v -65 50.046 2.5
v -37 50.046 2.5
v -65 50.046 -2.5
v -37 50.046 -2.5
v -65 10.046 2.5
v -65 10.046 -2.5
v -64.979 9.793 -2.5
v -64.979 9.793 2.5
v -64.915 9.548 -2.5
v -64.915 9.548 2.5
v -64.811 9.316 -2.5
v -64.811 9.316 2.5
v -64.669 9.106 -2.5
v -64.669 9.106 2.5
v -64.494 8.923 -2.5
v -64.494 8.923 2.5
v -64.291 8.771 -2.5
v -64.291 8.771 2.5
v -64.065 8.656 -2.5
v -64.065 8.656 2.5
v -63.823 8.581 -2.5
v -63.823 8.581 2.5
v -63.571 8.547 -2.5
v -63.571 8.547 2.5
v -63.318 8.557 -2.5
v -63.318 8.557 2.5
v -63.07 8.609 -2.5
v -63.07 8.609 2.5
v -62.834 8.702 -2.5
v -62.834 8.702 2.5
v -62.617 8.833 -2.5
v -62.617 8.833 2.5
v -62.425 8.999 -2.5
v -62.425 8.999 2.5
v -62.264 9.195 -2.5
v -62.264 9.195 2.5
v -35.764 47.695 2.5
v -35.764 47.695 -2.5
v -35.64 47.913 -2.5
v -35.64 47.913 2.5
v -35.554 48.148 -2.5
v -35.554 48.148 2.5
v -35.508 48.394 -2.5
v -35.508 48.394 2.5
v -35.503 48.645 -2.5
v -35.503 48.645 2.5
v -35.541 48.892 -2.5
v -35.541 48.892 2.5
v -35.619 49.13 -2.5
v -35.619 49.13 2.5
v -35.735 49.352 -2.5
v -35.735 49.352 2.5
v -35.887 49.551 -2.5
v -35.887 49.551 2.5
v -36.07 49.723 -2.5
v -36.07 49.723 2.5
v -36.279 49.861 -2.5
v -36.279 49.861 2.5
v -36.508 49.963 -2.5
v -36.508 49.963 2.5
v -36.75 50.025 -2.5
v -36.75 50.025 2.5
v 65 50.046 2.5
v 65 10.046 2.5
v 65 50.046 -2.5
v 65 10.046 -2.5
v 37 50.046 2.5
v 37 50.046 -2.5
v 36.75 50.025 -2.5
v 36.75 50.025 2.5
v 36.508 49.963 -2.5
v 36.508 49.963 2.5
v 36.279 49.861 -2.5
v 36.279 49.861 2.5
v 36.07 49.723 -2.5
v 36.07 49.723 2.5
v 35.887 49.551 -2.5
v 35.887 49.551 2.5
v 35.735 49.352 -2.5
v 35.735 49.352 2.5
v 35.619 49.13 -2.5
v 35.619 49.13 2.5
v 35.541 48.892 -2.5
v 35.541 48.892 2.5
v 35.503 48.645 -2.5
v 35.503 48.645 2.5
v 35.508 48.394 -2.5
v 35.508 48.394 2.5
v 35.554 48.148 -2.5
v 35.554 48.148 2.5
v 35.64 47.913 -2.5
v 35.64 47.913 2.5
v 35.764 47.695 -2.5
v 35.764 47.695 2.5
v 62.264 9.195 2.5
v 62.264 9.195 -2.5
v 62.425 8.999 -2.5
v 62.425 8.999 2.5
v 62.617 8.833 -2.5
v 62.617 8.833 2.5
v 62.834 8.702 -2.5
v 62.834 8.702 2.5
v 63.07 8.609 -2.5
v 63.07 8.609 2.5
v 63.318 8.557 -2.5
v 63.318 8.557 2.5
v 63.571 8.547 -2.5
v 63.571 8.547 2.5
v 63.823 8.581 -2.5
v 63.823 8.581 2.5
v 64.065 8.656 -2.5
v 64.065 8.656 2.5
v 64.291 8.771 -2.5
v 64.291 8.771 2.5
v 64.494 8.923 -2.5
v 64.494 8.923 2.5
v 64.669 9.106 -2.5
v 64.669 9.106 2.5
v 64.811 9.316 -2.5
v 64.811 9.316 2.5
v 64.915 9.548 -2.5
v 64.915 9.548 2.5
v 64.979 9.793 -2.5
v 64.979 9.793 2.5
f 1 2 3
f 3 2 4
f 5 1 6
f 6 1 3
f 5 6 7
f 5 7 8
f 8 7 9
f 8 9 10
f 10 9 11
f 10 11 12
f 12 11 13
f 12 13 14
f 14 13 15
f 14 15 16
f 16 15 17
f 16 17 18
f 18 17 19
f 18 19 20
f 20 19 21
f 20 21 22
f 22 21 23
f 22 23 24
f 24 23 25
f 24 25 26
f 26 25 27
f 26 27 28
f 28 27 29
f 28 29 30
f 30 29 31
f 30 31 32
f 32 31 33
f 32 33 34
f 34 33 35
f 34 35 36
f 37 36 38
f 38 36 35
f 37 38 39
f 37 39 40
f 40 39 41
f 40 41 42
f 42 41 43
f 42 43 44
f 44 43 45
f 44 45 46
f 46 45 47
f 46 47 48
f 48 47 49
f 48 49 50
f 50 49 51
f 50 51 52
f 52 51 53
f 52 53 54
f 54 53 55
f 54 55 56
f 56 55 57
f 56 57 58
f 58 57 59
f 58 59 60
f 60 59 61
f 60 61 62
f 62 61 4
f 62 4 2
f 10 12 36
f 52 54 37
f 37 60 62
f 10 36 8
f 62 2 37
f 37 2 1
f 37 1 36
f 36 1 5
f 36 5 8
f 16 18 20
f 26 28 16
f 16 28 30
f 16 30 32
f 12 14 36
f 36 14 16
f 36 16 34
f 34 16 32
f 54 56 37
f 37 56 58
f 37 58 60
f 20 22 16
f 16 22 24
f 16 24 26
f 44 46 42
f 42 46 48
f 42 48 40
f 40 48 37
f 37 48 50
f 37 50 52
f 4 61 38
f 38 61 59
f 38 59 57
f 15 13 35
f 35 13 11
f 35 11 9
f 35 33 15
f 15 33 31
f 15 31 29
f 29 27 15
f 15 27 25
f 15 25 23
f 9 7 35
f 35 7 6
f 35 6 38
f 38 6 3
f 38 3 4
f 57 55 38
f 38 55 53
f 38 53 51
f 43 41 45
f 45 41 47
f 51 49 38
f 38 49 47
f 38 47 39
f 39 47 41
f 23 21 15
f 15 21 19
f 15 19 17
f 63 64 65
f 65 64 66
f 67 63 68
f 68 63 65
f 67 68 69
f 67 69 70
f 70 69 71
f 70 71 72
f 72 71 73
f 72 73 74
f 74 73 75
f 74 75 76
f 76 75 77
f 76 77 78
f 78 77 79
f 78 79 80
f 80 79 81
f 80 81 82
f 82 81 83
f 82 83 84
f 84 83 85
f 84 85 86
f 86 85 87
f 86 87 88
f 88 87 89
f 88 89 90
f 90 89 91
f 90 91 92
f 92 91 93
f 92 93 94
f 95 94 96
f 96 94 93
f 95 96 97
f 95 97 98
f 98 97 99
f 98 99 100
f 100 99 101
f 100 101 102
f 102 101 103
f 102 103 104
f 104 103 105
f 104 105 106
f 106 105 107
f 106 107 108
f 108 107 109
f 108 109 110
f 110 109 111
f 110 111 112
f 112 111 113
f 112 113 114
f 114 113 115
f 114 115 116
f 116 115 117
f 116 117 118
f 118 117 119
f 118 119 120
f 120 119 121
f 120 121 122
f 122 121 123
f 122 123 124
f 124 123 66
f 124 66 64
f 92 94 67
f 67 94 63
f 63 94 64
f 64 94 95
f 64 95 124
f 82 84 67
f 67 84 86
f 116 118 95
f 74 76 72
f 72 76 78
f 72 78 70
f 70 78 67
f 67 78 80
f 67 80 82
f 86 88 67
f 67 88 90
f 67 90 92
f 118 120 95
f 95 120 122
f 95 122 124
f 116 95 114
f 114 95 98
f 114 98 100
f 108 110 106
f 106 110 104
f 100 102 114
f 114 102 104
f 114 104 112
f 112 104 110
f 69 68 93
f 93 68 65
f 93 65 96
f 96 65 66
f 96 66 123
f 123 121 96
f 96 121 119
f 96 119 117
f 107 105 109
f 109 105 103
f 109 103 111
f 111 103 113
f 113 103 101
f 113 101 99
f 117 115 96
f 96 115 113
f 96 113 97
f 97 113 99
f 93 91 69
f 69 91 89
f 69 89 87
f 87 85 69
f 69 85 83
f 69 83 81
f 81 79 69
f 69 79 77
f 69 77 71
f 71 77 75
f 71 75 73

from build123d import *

# Parameters (mm, degrees)
EXTRUDE_1_DEPTH   = 2.5
EXTRUDE_1_2_DEPTH = 2.5


with BuildPart() as part:
    # 스케치1 → 보스-돌출1 (new body, symmetric)
    with BuildSketch(Plane.XY):
        with BuildLine():
            Line((-65, 10.045785441), (-65, 50.045785441))
            Line((-65, 50.045785441), (-37, 50.045785441))
            ThreePointArc((-37, 50.045785441), (-35.672274276, 49.243742747), (-35.764405507, 47.695311309))
            Line((-35.764405507, 47.695311309), (-62.264405507, 9.195311309))
            ThreePointArc((-62.264405507, 9.195311309), (-63.945313519, 8.613411233), (-65, 10.045785441))
        make_face()
    extrude(amount=EXTRUDE_1_DEPTH, both=True)


with BuildPart() as body_2:
    # 스케치1 → Extrude 1 2 (new body, symmetric)
    with BuildSketch(Plane.XY):
        with BuildLine():
            Line((65, 50.045785441), (37, 50.045785441))
            ThreePointArc((37, 50.045785441), (35.672274276, 49.243742747), (35.764405507, 47.695311309))
            Line((35.764405507, 47.695311309), (62.264405507, 9.195311309))
            ThreePointArc((62.264405507, 9.195311309), (63.945313519, 8.613411233), (65, 10.045785441))
            Line((65, 10.045785441), (65, 50.045785441))
        make_face()
    extrude(amount=EXTRUDE_1_2_DEPTH, both=True)


solid = Compound([part.part, body_2.part])
